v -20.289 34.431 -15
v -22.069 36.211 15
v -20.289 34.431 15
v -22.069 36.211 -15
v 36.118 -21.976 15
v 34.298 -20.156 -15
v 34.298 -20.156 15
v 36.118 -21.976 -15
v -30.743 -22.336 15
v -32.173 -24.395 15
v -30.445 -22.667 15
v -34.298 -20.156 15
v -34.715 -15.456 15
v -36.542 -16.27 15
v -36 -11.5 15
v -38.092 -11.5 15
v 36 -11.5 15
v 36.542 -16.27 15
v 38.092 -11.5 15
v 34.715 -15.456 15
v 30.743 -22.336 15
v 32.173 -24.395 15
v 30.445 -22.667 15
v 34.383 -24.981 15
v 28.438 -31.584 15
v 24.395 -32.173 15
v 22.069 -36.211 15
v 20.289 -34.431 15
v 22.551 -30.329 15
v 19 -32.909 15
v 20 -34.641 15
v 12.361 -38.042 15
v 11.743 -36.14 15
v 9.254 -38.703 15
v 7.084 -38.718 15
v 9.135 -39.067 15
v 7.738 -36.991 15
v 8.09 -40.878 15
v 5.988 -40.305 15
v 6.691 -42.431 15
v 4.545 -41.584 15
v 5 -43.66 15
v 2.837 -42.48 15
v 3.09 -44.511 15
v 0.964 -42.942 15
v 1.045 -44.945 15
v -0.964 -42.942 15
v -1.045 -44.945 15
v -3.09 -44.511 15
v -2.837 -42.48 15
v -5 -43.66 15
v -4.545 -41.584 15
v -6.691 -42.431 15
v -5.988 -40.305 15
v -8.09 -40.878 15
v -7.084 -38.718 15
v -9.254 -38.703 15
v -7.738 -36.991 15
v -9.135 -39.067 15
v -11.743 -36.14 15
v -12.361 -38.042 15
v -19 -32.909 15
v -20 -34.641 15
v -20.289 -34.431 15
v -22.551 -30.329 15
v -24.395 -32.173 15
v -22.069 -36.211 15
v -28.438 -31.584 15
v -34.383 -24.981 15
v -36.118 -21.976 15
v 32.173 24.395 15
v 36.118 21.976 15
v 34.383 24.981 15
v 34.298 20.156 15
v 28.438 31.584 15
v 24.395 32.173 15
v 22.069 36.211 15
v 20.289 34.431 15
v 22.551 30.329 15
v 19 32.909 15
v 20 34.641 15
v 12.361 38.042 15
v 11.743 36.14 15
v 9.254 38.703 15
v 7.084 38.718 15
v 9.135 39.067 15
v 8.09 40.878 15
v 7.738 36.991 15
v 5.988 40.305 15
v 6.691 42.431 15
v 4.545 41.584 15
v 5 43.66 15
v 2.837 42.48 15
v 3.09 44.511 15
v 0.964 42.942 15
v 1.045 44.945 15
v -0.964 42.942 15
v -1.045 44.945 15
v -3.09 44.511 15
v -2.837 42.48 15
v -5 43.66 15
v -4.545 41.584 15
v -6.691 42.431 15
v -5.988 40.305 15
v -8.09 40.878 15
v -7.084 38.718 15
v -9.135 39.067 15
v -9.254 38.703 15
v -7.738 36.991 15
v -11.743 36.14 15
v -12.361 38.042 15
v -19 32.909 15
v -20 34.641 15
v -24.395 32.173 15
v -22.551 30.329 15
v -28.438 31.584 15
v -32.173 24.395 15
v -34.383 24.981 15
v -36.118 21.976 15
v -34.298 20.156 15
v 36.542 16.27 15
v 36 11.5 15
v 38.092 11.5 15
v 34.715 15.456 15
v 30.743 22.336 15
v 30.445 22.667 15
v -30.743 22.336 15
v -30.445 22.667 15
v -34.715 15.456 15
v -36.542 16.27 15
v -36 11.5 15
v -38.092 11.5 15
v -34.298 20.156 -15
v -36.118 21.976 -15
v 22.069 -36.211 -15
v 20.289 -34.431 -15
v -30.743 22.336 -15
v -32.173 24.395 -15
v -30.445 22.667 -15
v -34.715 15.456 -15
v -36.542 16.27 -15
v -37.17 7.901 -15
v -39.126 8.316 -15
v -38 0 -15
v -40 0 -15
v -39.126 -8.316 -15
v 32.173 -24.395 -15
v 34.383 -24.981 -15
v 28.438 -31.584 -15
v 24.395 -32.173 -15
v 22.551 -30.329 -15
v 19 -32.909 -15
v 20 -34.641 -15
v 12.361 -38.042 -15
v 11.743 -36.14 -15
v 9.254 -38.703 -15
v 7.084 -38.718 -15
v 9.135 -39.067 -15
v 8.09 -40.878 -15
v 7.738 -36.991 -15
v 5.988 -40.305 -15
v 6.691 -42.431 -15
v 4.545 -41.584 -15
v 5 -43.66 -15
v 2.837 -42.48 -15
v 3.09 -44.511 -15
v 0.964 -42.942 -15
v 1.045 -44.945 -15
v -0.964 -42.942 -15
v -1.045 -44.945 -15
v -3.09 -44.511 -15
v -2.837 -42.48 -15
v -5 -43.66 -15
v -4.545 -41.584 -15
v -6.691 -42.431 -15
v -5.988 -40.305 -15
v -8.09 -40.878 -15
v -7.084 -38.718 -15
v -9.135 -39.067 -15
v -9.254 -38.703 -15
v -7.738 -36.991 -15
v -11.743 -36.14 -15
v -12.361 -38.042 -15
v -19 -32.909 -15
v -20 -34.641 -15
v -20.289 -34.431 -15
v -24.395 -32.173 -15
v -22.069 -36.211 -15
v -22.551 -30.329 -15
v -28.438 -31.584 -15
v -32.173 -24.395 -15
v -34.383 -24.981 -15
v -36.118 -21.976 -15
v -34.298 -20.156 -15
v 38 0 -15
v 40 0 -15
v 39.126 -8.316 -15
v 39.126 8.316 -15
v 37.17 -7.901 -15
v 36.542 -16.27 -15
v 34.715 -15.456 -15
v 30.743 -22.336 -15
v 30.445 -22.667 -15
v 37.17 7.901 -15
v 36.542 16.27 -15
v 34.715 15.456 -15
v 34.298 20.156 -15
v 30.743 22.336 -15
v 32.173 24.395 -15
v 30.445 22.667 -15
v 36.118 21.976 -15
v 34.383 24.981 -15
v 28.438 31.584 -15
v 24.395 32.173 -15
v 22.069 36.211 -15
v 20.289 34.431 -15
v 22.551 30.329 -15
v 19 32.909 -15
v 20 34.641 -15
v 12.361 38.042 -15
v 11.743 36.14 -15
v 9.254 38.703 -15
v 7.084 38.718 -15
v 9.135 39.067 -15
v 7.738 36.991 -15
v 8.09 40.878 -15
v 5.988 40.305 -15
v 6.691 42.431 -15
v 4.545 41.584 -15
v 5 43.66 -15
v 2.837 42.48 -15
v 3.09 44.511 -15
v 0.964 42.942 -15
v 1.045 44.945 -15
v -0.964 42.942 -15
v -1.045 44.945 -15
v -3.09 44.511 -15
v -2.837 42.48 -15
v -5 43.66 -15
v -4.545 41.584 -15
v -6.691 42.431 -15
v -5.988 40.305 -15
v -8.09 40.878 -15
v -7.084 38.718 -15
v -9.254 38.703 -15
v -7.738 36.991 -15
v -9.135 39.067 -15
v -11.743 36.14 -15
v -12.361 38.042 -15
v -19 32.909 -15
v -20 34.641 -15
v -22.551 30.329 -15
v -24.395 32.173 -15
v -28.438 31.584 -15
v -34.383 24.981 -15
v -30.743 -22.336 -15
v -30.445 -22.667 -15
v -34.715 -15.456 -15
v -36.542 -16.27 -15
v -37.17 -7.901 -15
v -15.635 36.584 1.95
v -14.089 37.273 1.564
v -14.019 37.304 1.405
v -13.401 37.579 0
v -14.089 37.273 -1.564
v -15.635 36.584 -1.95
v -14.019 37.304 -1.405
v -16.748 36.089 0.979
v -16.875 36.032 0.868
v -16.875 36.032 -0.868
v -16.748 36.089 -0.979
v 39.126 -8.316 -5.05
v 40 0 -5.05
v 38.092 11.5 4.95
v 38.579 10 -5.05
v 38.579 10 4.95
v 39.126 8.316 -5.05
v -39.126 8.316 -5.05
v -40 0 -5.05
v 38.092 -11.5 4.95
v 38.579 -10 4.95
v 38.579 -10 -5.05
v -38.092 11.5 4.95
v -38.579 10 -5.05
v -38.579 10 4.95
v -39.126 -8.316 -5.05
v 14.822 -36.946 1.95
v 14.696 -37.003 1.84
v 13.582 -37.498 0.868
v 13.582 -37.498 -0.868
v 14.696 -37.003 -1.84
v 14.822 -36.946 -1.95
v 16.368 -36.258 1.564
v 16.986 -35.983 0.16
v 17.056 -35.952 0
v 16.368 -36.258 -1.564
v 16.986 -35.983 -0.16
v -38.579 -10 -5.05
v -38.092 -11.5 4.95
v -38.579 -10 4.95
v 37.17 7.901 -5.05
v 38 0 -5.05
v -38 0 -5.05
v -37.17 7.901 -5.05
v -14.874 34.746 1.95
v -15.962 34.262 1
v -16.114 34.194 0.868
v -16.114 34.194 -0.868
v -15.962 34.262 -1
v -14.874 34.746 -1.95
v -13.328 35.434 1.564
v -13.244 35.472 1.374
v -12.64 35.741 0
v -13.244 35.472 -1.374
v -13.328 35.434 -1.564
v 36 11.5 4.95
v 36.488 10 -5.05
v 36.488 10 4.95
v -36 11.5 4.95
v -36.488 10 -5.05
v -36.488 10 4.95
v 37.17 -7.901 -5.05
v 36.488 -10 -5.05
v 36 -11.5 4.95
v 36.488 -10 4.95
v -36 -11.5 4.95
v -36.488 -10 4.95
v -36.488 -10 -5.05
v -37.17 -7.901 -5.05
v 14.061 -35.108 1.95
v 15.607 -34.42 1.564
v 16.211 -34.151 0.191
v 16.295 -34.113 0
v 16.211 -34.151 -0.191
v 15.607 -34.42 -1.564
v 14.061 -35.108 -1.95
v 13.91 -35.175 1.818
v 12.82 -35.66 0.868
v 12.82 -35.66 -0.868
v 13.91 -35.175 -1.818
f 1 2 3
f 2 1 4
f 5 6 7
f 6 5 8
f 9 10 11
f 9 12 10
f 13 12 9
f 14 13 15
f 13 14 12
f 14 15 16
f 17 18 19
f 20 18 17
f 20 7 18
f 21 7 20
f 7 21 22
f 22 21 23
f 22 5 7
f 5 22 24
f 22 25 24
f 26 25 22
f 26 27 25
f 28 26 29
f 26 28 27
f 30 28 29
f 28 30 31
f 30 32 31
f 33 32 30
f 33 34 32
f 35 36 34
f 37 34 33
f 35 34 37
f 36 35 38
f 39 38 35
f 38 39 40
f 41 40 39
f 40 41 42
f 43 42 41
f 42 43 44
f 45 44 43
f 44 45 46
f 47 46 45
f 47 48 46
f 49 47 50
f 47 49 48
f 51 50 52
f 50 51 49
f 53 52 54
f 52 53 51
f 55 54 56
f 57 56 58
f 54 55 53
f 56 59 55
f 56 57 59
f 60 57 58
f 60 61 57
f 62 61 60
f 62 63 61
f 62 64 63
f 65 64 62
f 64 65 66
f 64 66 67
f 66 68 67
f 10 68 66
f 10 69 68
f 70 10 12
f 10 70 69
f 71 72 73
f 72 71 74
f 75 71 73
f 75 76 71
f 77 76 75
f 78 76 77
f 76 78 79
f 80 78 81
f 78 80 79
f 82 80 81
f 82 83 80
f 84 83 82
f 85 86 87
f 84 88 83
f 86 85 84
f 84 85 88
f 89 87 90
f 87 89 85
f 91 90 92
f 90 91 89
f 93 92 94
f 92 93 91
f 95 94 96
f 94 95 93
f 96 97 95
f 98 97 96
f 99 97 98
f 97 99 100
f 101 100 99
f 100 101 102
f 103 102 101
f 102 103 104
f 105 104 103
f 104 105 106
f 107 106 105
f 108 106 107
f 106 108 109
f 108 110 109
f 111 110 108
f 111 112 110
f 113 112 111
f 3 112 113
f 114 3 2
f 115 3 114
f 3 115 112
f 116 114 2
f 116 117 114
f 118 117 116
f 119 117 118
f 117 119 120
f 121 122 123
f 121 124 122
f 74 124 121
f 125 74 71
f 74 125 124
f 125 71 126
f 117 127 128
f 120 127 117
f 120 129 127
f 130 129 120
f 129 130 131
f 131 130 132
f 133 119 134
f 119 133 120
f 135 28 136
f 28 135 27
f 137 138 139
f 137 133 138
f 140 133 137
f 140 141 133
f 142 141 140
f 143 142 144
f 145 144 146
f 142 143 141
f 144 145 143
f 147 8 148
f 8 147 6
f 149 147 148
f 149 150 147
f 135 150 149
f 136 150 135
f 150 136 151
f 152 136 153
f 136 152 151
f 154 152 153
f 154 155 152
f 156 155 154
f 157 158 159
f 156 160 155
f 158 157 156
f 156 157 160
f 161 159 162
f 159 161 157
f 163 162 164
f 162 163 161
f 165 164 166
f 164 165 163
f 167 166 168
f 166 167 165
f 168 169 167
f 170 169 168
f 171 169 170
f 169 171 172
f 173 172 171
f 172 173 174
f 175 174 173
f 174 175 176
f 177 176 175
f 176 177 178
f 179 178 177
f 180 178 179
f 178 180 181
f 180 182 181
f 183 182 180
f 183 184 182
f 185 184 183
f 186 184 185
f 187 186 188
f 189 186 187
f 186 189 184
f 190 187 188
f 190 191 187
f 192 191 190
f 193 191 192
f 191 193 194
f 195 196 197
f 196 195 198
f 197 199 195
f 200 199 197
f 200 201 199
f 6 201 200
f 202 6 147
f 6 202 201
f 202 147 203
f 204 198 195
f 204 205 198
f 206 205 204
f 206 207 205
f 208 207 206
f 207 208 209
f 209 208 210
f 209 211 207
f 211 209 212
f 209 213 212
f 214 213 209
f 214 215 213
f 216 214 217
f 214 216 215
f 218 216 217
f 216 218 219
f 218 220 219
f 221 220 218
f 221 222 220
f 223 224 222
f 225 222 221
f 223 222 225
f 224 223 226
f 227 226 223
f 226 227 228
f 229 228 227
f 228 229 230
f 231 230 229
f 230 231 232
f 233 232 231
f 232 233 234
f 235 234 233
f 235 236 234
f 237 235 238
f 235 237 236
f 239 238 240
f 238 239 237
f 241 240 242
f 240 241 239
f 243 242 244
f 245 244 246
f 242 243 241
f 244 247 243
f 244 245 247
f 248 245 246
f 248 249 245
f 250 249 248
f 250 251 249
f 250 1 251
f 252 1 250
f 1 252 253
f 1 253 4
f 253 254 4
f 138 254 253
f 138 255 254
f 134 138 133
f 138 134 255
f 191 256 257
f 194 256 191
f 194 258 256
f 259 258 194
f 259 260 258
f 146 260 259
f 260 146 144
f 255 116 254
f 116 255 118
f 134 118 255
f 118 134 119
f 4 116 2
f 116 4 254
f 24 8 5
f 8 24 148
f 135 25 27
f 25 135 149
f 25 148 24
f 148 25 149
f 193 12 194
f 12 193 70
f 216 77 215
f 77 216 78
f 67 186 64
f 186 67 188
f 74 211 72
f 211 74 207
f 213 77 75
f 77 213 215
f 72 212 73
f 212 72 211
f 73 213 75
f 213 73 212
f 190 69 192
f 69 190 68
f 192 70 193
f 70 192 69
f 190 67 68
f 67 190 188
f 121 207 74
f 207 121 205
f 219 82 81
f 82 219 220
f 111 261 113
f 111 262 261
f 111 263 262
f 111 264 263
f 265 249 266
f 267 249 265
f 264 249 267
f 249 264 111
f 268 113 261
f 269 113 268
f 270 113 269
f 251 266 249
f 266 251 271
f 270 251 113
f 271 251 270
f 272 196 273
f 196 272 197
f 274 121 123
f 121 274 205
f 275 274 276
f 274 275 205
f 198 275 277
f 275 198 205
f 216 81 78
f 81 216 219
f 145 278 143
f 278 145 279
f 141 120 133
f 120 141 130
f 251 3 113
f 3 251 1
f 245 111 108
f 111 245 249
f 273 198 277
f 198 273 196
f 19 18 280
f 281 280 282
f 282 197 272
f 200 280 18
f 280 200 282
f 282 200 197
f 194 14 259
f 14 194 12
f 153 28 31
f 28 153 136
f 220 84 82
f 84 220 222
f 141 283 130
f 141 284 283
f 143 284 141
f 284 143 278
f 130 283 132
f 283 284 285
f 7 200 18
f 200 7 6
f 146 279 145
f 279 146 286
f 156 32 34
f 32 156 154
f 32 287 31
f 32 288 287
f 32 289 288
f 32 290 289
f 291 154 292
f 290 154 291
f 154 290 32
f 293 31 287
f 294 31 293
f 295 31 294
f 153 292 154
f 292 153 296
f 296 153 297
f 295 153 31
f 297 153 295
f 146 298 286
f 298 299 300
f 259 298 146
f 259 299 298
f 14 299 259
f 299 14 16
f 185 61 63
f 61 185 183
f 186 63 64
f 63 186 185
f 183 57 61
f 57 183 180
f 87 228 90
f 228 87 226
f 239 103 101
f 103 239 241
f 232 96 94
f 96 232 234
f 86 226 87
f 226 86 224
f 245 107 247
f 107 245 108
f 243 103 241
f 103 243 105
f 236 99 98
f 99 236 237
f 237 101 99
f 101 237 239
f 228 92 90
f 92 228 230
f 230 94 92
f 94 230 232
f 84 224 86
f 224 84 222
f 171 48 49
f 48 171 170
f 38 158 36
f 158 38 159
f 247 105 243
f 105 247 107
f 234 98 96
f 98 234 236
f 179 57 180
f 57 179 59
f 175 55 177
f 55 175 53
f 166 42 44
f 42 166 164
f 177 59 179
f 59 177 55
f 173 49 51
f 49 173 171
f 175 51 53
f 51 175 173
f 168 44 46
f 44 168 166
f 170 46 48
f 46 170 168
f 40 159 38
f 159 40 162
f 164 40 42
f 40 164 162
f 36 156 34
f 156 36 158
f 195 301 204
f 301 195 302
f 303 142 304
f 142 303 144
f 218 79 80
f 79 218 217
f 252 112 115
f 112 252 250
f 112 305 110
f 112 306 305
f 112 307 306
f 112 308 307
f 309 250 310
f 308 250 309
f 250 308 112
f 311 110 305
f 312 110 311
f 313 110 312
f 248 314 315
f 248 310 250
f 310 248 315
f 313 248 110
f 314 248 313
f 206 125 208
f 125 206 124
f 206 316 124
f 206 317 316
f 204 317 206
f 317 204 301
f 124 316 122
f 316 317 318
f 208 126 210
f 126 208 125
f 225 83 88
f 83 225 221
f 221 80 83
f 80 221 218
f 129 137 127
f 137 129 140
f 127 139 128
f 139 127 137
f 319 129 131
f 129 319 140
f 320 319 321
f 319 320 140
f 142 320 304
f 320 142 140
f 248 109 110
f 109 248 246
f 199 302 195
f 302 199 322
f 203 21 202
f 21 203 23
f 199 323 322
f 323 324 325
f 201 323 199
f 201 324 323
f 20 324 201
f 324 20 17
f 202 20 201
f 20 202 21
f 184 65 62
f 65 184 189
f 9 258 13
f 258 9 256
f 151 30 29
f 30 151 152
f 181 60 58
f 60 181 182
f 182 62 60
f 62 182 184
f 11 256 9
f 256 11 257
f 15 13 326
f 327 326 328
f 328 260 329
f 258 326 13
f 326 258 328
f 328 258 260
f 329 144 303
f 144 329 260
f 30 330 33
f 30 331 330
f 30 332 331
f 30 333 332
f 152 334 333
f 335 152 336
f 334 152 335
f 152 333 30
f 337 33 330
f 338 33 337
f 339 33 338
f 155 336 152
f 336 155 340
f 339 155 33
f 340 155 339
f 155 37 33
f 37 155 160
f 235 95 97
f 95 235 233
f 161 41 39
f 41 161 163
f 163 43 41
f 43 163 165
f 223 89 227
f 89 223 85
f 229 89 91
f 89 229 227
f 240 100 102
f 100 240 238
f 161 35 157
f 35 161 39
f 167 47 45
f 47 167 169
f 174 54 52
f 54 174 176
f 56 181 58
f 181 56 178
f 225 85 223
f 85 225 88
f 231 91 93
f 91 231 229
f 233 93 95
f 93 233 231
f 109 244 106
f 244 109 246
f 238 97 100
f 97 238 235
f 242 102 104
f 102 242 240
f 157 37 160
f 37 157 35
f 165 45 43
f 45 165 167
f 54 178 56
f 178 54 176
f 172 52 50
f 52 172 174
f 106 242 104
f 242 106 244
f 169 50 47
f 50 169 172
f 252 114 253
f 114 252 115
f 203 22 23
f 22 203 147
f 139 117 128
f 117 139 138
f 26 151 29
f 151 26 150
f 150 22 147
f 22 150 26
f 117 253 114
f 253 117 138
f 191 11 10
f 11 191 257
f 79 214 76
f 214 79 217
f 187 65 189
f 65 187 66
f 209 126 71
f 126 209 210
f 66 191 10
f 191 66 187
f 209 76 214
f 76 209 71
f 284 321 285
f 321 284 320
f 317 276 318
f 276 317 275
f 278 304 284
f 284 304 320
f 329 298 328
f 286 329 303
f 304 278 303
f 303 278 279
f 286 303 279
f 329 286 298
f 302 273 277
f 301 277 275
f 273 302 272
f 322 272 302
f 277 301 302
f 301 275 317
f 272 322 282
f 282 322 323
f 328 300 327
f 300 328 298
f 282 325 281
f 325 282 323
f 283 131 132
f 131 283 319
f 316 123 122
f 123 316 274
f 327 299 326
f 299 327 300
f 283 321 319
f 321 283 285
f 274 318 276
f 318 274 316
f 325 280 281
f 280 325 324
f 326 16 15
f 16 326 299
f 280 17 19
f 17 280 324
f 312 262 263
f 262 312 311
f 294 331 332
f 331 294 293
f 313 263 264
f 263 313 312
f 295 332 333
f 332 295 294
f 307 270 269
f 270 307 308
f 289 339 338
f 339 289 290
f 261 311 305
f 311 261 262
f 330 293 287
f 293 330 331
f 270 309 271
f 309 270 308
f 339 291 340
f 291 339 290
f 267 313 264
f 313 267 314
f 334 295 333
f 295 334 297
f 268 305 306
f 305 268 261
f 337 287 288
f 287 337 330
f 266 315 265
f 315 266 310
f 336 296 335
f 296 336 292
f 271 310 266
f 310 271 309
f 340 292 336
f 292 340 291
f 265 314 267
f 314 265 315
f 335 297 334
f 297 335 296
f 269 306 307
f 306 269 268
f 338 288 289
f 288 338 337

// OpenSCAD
frontcap();

module frontcap() {
	difference() {
		union() {
			cylinder(d=80, h=30, center=true);
			
			hull() {
				translate([0,35,0])
					cylinder(d=20, h=30, center = true);
				translate([0,-35,0])
					cylinder(d=20, h=30, center = true);
			}
			
			intersection() {
				rotate([0,0,45])
					cube([20,100,30], center = true);
				cylinder(d=85, h=30, center=true);
			}
			intersection() {
				rotate([0,0,-45])
					cube([20,100,30], center = true);
				cylinder(d=85, h=30, center=true);
			}
		}
		
		
		cylinder(d=75+1, h=30+0.1, center=true);
		
		hull() {
			translate([0,35,0])
				cylinder(d=15+1, h=30+0.1, center = true);
			translate([0,-35,0])
				cylinder(d=15+1, h=30+0.1, center = true);
		}
			
		rotate([0,0,45])
			cube([11,80,30+0.1], center = true);
		rotate([0,0,-45])
			cube([11,80,30+0.1], center = true);
		
		translate([0,0,10])
			cube([100,20,30+0.1], center = true);
		translate([0,0,20])
			cube([100,23,30+0.1], center = true);
		
		rotate([90,0,22.5])
			cylinder(d=4, h=100, center = true);
	}
}
